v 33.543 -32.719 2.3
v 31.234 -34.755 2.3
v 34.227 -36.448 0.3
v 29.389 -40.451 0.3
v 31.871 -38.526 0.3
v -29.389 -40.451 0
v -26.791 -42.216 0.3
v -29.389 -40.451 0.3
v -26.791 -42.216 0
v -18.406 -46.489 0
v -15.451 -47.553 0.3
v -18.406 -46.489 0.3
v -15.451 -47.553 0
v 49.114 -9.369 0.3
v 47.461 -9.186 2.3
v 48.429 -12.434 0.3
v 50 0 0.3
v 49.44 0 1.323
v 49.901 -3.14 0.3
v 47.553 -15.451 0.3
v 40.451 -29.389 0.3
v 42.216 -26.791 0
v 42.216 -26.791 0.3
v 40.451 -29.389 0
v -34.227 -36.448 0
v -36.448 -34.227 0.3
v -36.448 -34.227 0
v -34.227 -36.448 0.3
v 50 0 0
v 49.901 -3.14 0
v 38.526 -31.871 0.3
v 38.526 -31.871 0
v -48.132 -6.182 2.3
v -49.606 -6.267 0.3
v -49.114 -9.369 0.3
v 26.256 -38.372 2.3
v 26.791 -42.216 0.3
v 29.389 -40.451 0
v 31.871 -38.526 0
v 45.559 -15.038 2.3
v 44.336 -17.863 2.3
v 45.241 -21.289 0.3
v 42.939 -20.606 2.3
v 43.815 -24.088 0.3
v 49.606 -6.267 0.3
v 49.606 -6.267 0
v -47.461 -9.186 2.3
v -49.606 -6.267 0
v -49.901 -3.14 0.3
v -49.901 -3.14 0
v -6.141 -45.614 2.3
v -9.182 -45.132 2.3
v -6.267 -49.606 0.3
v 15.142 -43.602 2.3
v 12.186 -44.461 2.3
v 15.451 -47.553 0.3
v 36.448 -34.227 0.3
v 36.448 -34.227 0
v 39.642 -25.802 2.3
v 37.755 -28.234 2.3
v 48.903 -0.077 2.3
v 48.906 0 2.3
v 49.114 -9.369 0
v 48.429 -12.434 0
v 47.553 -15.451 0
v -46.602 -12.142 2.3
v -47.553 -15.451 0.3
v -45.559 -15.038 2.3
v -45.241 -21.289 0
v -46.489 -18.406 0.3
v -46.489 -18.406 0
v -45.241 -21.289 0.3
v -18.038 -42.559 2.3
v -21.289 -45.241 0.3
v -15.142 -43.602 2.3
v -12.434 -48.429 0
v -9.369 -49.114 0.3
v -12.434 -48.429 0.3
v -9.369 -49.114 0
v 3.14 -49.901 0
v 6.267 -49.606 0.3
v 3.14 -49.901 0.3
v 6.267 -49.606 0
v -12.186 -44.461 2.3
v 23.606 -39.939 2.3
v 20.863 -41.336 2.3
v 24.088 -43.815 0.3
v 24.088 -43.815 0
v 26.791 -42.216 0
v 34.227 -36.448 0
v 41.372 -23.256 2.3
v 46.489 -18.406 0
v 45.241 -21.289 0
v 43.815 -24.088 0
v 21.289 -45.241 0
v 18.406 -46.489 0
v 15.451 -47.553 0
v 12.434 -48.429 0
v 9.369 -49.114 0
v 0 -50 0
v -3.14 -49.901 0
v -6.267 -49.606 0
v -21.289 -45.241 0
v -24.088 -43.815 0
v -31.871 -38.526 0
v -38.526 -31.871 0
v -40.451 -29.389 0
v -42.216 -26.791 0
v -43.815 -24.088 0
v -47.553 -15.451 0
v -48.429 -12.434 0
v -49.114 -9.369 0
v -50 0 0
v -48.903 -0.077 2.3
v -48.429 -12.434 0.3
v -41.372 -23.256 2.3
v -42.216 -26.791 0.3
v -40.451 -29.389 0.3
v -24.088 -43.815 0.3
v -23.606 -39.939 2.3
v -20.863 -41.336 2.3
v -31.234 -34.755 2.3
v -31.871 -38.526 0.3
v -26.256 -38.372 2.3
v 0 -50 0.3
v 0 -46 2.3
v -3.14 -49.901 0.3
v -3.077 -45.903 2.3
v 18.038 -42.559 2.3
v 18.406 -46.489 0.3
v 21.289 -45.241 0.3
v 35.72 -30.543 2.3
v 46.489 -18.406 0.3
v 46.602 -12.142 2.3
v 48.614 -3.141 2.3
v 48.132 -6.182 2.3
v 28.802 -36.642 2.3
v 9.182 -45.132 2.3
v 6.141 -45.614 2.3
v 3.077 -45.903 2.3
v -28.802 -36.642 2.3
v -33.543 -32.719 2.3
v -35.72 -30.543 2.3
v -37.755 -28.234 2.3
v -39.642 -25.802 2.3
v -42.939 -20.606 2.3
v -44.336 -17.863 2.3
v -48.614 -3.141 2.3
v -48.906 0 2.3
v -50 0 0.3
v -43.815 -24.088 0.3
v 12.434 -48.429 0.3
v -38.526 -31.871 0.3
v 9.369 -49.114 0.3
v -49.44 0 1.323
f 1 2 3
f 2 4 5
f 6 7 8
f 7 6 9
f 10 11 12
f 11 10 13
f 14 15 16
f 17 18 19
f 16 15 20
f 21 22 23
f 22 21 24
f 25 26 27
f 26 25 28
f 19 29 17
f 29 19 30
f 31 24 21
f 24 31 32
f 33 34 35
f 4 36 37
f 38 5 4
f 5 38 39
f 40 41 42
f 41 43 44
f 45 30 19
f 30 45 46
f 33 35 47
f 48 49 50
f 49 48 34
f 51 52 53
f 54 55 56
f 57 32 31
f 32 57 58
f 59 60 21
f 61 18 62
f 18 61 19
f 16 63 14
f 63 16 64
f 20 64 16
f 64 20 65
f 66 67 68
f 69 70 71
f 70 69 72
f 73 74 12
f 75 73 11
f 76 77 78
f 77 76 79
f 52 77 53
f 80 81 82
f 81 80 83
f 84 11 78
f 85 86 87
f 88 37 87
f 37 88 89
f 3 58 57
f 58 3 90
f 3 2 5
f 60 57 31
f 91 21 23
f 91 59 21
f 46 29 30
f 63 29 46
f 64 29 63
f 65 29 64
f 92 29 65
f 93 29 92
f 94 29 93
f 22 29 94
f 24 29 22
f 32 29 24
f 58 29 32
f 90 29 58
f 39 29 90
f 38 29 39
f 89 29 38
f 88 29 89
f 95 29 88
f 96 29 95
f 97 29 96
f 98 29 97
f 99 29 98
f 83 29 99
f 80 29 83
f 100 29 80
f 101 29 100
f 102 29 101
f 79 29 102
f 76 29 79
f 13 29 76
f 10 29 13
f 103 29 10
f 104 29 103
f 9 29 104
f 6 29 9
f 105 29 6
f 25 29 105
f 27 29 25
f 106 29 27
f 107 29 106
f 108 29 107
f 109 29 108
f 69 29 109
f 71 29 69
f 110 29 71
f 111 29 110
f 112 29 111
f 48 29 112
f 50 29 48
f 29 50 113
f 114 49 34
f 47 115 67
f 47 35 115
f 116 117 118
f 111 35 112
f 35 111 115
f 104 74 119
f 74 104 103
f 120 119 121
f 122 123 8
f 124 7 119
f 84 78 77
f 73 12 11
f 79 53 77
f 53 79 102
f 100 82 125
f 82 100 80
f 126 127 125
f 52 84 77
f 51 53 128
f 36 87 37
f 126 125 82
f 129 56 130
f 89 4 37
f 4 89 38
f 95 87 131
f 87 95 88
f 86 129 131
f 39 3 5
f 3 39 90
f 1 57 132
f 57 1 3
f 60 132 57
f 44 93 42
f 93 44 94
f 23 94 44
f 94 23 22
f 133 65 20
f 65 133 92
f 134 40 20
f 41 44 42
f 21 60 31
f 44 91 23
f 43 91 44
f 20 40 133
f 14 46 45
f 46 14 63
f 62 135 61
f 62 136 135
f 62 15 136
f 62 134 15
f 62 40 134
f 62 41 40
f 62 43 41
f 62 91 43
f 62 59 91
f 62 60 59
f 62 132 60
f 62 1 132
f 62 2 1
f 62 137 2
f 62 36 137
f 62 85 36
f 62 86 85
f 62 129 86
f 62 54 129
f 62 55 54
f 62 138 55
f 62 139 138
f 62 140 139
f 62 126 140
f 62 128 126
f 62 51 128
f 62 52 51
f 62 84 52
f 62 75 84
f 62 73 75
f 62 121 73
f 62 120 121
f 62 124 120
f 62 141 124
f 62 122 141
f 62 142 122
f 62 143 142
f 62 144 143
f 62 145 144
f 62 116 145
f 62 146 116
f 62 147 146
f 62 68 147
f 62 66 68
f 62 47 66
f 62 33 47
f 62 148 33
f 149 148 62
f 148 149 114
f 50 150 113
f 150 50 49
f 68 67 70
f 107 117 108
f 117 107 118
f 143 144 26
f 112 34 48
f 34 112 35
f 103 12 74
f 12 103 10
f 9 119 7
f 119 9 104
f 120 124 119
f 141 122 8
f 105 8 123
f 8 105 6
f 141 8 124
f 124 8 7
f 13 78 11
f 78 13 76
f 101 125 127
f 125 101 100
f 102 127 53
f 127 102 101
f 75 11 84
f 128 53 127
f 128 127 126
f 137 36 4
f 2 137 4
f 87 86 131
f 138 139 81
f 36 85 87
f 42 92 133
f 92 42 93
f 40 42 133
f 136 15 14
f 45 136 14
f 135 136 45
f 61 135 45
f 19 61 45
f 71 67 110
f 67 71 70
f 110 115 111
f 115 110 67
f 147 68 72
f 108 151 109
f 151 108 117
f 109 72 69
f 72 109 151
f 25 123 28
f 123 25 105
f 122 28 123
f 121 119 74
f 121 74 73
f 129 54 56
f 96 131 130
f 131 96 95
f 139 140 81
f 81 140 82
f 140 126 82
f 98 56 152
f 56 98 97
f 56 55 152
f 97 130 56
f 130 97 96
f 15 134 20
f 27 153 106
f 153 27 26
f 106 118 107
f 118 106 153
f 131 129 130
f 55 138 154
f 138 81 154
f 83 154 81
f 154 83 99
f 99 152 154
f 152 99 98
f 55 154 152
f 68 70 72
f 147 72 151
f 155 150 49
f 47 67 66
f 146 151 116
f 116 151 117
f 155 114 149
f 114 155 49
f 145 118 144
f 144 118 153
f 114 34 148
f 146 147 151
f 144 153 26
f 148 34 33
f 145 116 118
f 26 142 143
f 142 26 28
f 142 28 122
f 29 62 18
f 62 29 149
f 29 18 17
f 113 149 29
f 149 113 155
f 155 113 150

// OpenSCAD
// Copyright (c) 2016 Christian Ege <ch@ege.io>
//
// This file is part of my OpenSCAD stuff
//
// This is free software: you can redistribute it and/or modify
// it under the terms of the GNU Affero General Public License as
// published by the Free Software Foundation, either version 3 of the
// License, or (at your option) any later version.
//
// This program is distributed in the hope that it will be useful,
// but WITHOUT ANY WARRANTY; without even the implied warranty of
// MERCHANTABILITY or FITNESS FOR A PARTICULAR PURPOSE.  See the
// GNU Affero General Public License for more details.
//
// You should have received a copy of the GNU Affero General Public License
// along with this program. If not, see <http://www.gnu.org/licenses/>.

// Pumpking scraper

outer_diameter = 100;
height = 2;
blade_offset = 3;
epsilon=0.3;

difference() {
    hull() {
        cylinder(r=outer_diameter/2,h=epsilon,$fn=100);
        translate([0,blade_offset,height])cylinder(r=(outer_diameter-height)/2,h=epsilon,$fn=100);
    }
    translate([-outer_diameter,0,-epsilon])cube([2*outer_diameter,outer_diameter,height*2]);
}
